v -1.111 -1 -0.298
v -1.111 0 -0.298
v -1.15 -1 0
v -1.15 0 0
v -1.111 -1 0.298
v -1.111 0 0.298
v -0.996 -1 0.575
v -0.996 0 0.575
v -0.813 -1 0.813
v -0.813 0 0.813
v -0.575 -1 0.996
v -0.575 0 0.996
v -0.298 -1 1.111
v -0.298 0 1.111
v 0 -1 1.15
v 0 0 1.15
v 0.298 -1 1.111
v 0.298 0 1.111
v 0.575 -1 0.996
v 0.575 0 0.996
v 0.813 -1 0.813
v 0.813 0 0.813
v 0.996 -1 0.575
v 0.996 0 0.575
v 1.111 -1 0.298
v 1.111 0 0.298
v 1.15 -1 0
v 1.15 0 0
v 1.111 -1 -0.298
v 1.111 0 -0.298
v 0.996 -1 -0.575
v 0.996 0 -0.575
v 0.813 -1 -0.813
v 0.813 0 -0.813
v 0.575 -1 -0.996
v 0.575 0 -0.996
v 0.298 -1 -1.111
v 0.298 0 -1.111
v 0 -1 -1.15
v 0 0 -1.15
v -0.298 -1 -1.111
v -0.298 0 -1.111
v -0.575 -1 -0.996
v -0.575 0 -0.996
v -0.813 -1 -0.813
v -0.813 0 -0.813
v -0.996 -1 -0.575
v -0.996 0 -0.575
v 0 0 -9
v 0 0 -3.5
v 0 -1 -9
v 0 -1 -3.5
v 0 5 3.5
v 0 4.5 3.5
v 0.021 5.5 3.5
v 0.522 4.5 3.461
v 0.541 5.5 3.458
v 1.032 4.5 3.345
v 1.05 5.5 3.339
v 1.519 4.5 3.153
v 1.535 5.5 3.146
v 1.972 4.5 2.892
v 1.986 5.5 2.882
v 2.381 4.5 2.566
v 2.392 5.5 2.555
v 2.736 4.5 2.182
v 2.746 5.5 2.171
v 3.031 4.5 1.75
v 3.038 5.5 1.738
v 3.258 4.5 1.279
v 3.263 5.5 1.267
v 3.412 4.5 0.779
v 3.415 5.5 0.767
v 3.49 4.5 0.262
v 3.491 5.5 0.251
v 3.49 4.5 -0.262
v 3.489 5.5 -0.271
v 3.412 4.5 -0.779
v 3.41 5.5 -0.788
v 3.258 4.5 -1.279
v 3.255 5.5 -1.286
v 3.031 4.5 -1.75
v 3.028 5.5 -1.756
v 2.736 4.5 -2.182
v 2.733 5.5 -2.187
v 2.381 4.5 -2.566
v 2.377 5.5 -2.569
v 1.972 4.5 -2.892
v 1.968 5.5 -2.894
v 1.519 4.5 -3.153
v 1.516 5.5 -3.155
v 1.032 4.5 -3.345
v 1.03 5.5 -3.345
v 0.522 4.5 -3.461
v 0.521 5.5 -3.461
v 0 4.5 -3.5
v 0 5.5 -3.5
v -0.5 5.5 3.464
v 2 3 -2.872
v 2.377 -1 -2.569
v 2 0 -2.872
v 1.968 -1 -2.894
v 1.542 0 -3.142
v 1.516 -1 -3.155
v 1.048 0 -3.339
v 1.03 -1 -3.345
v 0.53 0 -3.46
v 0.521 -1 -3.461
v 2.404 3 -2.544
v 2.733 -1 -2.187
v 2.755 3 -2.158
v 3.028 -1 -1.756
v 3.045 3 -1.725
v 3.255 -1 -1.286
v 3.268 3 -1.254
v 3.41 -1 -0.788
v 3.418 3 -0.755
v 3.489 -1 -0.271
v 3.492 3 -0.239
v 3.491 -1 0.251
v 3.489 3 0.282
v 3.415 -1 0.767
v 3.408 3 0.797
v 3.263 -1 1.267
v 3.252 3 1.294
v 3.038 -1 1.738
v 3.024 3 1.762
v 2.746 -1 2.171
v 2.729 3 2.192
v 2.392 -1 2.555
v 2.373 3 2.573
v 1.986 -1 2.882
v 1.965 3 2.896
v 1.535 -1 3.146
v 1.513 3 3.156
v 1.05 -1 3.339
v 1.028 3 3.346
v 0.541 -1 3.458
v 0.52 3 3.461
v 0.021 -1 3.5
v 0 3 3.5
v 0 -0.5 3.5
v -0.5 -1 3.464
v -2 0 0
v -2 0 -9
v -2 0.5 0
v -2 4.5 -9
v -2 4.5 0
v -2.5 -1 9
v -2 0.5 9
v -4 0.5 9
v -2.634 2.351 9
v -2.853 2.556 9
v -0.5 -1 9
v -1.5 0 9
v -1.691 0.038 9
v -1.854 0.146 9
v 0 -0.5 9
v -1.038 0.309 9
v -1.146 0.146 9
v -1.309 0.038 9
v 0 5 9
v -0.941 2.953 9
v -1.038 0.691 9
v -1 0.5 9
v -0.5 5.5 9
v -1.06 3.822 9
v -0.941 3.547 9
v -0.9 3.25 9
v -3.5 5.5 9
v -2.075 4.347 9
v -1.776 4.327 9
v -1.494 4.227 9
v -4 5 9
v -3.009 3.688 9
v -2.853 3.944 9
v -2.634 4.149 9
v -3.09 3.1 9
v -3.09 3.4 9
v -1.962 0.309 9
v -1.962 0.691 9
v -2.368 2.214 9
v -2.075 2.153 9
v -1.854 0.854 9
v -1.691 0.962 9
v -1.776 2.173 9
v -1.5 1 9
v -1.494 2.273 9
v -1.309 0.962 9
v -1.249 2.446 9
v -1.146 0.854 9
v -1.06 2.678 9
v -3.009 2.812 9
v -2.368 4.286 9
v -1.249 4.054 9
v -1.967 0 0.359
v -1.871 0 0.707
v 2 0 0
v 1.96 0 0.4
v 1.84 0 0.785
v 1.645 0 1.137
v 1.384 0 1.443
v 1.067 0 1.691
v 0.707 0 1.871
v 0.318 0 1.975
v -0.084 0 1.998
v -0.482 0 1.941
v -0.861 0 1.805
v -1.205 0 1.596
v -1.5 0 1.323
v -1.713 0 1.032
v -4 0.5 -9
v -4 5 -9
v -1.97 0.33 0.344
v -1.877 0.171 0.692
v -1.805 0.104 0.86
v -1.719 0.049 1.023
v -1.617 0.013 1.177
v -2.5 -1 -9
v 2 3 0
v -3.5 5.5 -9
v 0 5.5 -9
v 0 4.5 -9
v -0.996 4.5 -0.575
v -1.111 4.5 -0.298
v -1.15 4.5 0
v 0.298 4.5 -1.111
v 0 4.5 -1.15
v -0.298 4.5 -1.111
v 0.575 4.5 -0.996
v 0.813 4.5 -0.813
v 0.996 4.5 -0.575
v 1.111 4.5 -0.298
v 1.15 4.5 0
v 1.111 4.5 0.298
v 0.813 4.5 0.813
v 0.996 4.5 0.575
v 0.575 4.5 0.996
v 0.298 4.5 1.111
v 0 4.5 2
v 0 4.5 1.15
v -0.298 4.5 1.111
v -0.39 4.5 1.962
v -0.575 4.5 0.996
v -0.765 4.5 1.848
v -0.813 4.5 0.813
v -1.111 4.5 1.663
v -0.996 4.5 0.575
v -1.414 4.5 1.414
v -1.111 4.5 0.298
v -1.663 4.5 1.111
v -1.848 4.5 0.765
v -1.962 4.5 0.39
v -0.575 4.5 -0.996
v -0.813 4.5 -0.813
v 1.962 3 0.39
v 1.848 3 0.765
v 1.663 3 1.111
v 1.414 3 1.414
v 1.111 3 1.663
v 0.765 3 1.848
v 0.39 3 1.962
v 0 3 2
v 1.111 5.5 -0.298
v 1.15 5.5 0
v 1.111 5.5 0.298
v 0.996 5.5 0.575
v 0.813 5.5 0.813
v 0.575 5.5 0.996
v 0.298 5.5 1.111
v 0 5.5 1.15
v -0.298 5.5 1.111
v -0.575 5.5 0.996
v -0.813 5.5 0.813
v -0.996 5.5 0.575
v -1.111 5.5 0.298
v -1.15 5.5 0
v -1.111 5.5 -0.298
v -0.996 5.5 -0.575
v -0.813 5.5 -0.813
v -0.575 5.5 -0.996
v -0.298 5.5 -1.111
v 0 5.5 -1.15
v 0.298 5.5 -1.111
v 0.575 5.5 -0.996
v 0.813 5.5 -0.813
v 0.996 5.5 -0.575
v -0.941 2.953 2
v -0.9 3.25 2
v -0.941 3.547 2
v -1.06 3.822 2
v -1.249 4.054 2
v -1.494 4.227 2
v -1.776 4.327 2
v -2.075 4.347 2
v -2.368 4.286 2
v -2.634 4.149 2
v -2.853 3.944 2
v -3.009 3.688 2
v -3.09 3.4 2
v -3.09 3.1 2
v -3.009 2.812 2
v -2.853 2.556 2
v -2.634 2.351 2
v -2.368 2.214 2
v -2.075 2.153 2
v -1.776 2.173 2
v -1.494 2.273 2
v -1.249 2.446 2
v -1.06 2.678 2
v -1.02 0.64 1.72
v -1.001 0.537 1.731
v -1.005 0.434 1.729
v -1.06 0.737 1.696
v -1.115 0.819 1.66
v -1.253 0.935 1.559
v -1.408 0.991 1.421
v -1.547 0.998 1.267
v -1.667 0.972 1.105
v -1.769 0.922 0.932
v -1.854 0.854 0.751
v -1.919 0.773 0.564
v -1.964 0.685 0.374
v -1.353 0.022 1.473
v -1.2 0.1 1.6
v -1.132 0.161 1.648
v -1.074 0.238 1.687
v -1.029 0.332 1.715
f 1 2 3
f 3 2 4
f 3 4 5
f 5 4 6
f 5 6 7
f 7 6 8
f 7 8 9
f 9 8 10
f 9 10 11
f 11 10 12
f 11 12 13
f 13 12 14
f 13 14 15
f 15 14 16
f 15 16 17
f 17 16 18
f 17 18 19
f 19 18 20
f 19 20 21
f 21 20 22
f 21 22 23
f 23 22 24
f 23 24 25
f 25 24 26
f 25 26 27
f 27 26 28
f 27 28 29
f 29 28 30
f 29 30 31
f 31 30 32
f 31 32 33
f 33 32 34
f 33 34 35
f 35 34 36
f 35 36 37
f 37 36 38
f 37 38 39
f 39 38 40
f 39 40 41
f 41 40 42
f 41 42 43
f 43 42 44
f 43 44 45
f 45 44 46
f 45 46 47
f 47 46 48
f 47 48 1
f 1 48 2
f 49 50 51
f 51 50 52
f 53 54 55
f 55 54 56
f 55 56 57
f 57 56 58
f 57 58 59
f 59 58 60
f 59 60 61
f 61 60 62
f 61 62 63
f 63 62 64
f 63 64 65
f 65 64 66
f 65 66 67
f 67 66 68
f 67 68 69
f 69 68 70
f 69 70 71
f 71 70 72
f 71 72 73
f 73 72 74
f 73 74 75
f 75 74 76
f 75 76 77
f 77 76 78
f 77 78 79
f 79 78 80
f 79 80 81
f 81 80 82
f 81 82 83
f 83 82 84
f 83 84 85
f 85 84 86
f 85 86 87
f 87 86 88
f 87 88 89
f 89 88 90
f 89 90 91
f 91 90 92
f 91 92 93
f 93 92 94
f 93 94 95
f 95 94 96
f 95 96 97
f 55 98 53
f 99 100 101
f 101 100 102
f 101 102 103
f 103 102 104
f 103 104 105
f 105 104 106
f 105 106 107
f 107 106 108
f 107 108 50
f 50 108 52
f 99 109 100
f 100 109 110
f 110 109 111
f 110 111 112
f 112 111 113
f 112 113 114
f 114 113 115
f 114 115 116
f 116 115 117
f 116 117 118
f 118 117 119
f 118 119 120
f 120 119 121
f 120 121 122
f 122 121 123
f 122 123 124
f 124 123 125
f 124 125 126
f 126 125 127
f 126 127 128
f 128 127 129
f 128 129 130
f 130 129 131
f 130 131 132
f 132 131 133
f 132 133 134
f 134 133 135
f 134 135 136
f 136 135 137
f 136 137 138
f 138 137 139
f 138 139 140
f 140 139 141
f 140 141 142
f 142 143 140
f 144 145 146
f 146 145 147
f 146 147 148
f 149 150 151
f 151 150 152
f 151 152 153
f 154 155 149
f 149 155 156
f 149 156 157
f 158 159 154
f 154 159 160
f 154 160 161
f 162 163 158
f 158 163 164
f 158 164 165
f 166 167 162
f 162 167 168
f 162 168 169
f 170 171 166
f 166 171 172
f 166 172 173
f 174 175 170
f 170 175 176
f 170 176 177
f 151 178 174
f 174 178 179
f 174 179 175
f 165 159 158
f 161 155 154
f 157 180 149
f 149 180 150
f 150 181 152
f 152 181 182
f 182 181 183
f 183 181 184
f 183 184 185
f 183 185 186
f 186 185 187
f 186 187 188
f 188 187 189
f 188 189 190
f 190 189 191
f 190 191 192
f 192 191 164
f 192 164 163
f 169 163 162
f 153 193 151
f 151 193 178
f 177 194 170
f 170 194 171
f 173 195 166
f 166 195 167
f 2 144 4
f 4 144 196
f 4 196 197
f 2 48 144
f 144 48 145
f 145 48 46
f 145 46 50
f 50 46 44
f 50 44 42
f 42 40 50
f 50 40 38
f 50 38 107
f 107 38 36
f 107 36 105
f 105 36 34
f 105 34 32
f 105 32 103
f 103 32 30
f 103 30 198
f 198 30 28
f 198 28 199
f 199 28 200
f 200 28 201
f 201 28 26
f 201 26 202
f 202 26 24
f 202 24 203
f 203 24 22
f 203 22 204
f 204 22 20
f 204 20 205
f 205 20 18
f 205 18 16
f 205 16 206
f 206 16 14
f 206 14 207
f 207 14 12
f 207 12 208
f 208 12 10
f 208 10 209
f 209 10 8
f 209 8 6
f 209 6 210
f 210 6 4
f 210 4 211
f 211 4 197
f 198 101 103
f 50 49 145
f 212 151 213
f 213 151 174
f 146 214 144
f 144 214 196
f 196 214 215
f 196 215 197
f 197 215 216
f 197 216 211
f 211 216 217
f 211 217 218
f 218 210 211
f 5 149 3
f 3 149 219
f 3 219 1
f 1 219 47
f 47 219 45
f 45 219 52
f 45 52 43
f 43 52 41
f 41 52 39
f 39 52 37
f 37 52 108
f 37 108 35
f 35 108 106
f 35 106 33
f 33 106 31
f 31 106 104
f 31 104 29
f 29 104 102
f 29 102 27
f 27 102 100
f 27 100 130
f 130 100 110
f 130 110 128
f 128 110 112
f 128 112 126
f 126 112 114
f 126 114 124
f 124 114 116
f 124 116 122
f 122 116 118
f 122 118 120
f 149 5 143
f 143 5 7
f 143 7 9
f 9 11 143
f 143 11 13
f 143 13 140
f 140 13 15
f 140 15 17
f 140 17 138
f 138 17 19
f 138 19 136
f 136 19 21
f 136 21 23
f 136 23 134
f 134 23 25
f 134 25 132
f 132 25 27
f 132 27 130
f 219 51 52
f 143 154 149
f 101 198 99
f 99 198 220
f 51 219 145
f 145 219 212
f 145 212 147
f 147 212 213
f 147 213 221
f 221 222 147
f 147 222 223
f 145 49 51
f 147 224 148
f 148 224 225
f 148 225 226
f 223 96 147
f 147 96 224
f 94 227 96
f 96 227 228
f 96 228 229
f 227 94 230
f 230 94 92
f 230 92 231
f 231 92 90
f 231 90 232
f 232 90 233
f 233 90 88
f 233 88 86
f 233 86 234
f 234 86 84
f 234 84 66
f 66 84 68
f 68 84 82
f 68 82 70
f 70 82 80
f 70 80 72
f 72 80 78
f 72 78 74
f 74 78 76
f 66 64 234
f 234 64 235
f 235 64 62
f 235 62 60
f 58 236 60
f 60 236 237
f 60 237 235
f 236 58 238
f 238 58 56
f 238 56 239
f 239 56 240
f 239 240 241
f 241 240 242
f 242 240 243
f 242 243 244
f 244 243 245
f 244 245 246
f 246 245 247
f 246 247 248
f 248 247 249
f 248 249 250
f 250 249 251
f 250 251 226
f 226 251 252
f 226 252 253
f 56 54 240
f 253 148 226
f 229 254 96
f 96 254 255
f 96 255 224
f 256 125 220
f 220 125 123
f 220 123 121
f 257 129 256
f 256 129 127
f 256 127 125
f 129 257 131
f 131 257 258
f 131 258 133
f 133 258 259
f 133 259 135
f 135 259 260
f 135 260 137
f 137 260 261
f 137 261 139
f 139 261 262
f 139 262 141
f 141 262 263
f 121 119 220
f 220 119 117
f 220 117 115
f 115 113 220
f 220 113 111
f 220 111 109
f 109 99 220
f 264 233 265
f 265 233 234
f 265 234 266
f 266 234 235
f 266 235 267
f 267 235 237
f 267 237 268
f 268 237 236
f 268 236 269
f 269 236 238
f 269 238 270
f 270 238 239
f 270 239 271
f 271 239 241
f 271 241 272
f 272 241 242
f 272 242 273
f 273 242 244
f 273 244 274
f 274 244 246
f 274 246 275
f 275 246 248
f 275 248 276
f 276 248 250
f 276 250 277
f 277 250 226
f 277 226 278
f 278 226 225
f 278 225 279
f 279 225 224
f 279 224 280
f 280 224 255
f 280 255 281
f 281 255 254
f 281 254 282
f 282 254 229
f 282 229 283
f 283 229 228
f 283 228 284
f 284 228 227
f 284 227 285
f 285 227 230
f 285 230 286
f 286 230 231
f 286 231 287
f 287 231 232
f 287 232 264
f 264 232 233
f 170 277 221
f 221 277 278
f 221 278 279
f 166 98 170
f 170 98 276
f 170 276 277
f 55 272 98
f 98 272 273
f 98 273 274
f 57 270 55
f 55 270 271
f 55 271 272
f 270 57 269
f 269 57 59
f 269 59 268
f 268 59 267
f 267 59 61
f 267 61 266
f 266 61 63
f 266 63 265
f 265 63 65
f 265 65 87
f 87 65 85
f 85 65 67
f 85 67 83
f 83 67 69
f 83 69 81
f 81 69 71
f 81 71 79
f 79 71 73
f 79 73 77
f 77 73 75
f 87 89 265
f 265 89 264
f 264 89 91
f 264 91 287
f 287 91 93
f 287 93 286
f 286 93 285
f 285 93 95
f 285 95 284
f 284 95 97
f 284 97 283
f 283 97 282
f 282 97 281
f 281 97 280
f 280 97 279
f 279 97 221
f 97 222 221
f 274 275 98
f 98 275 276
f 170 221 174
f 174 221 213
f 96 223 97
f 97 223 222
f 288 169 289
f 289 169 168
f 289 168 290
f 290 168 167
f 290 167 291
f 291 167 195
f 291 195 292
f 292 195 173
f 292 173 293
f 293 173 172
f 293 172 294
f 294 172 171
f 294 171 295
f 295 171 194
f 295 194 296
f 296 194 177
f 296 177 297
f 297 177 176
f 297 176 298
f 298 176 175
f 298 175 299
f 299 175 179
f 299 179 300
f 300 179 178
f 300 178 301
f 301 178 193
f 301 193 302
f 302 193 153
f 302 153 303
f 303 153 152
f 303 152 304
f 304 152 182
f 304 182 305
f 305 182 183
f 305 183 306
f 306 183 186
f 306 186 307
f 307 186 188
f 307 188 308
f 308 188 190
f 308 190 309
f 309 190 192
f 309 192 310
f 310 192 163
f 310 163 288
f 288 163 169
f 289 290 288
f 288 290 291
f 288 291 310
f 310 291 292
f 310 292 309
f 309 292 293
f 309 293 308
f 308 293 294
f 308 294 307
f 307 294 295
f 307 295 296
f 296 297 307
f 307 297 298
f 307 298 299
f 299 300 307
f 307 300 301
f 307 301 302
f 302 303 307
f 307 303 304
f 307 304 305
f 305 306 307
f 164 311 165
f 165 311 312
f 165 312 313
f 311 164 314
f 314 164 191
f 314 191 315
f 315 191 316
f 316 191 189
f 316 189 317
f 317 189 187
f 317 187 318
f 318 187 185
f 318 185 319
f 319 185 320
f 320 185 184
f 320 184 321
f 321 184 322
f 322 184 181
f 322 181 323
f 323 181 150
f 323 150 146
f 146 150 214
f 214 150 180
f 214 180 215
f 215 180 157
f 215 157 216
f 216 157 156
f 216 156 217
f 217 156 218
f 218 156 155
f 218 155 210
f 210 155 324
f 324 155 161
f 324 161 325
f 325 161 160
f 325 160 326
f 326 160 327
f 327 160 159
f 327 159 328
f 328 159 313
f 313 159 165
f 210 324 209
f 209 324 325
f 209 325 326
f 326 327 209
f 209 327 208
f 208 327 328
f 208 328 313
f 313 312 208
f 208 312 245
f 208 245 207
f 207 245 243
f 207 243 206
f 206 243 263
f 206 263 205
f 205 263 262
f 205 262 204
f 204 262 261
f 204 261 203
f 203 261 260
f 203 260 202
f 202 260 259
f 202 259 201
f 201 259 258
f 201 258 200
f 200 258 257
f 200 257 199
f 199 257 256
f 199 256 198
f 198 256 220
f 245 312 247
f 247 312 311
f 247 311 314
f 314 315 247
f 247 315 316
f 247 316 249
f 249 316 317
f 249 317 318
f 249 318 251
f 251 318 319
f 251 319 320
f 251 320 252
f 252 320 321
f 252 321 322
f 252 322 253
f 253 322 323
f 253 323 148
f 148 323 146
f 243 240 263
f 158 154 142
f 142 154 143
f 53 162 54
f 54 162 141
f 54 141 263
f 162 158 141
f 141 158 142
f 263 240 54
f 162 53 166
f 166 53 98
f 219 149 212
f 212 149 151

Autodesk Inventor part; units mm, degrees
ref_plane "YZ Plane" through (0, 0, 0) normal (1, 0, 0) x (0, 1, 0)
ref_plane "XZ Plane" through (0, 0, 0) normal (0, 1, 0) x (-1, 0, 0)
ref_plane "XY Plane" through (0, 0, 0) normal (0, 0, 1) x (1, 0, 0)
sketch "スケッチ1" plane through (0, 0, 0) normal (0, 1, 0) x (-1, 0, 0)
  circle A0 centre (0, 0) radius 1.15
  circle A1 centre (0, 0) radius 2
  circle A2 centre (0, 0) radius 3.5
  line L0 (0, 0) -> (0, 3.5)
  line L1 (2, 0) -> (-2, 0)
  line L2 (2, 0) -> (2, -2.8723)
  line L3 (-2, 0) -> (-2, -2.8723)
  line L4 (0, 2) -> (3.5, 2)
  line L5 (3.5, 2) -> (3.5, 6)
  line L6 (3.5, 6) -> (0, 6)
  line L7 (0, 6) -> (0, 2)
  line L8 (0, 6) -> (3.5, 6)
  line L9 (3.5, 6) -> (3.5, 0)
  line L10 (3.5, 0) -> (0, 0)
  line L11 (0, 0) -> (0, 6)
  line L12 (0, 0) -> (0, -8)
  line L13 (0, 0) -> (3.5, 0)
  line L14 (3.5, 0) -> (3.5, -8)
  line L15 (3.5, -8) -> (0, -8)
  line L16 (0, -8) -> (0, 0)
  line L17 (2, -2.8723) -> (2, -8)
  line L18 (0, -8) -> (3.5, -4.5)
  line L19 (0, -8) -> (4.9497, -8) construction
  line L20 (0, 0) -> (3.5, 0)
  line L21 (3.5, 0) -> (3.5, -9)
  line L22 (3.5, -9) -> (0, -9)
  line L23 (0, -9) -> (0, 0)
  line L24 (0, 2) -> (4, 2)
  line L25 (4, 2) -> (4, 9)
  line L26 (4, 9) -> (0, 9)
  line L27 (0, 9) -> (0, 2)
  line L28 (0, 9) -> (4, 9)
  line L29 (4, 9) -> (4, -9)
  line L30 (4, -9) -> (0, -9)
  line L31 (0, -9) -> (0, 9)
  line L32 (0, 0) -> (2, 0)
  line L33 (2, 0) -> (2, -9)
  line L34 (2, -9) -> (0, -9)
  line L35 (0, -9) -> (0, 0)
  point P0 (2, -6)
  point P1 (0, -3.5)
  dimension "d0" = 2.3
  dimension "d1" = 4
  dimension "d2" = 7
  dimension "d3" = 3.5
  dimension "d4" = 4
  dimension "d5" = 8
  dimension "d6" = 45
  dimension "d40" = 9
  dimension "d41" = 4
  dimension "d42" = 7
extrude "押し出し1" add sketch "スケッチ1" along normal blind 3 contours A1 L3 A2 L0
extrude "押し出し2" add sketch "スケッチ1" along normal blind 4.5 contours L10 A2 L2 | A1 L4 A2 L10 | L0 A2 L4 | A2 L14 L18 L17 | A2 L4 L9 | L9 L24 L29 L30 L21 L14 | L7 L6 L5 L4 A2 | L18 L14 L15 L17 | L5 L6 L27 L26 L25 L24 | L15 L21 L22 L33
extrude "押し出し3" add sketch "スケッチ1" against normal blind 1 contours L1 A1 L12 A0 | A0 L0 A1 L1 | A0 L1 A1 L0 | L12 A1 L1 A0 | L2 A2 L12 A1 | L10 A2 L2 | A1 L4 A2 L10 | A1 L3 A2 L0 | L0 A2 L4 | L12 A2 L3 A1 | L17 L18 L12 A2 | A2 L14 L18 L17 | A2 L4 L9 | L9 L24 L29 L30 L21 L14 | L7 L6 L5 L4 A2 | L18 L14 L15 L17 | L17 L15 L18 | L5 L6 L27 L26 L25 L24 | L15 L33 L22 L23 | L15 L21 L22 L33
sketch "スケッチ4" plane through (0, 4.5, 0) normal (0, 1, 0) x (1, 0, 0)
  circle A0 centre (0, 0) radius 1.15
  circle A1 centre (0, 0) radius 2
  circle A2 centre (0, 0) radius 3.5
  line L0 (-4, 9) -> (-4, -9) projected
  line L1 (0, 0) -> (-4, 0)
  line L2 (-4, 0) -> (-4, -9)
  line L3 (-4, -9) -> (0, -9)
  line L4 (0, -9) -> (0, 0)
  line L5 (0, 0) -> (-4, 0)
  line L6 (-4, 0) -> (-4, 9)
  line L7 (-4, 9) -> (0, 9)
  line L8 (0, 9) -> (0, 0)
  point P0 (0, -3.5)
  point P1 (0, 3.5)
  dimension "d43" = 2.3
  dimension "d44" = 4
  dimension "d45" = 7
  dimension "d46" = 4
  dimension "d47" = 9
extrude "押し出し6" add sketch "スケッチ4" along normal blind 1 contours A0 L8 A1 L4 | A0 L1 A1 L8 | L4 A1 L1 A0 | L8 A2 L4 A1 | A1 L1 A2 L8 | L4 A2 L1 A1 | A2 L1 L0 L7 L8 | L4 L3 L0 L1 A2
sketch "スケッチ5" plane through (-4, -1, 9) normal (0, 0, 1) x (1, 0, 0)
  line L0 (4, 0) -> (4, 4) projected
  line L1 (4, 0) -> (0, 0)
  line L2 (0, 0) -> (0, 1)
  line L3 (0, 1) -> (4, 1)
  line L4 (4, 1) -> (4, 0)
  line L5 (4, 1) -> (2.5, 1)
  line L6 (2.5, 1) -> (2.5, 1.5)
  line L7 (2.5, 1.5) -> (4, 1.5)
  line L8 (4, 1.5) -> (4, 1)
  line L9 (4, 6.5) -> (0, 6.5) projected
  line L10 (0, 6.5) -> (2, 6.5)
  line L11 (2, 6.5) -> (2, 4.25)
  line L12 (2, 4.25) -> (0, 4.25)
  line L13 (0, 4.25) -> (0, 6.5)
  circle A0 centre (2, 4.25) radius 1.1
  dimension "d50" = 4
  dimension "d51" = 1
  dimension "d52" = 1.5
  dimension "d53" = 0.5
  dimension "d54" = 2
  dimension "d55" = 2.25
  dimension "d56" = 2.2
extrude "押し出し7" cut sketch "スケッチ5" against normal blind 7 contours A0 L12 L11 | L11 L12 A0
hole "穴2" at (-1.5, 0.5, 9) direction (0, 0, -1) diameter 1 end through all
chamfer "面取り1" distance 0.5 angle 45 3 edges at (0, -1, 6.25) (0, 5.5, 6.25) (-4, 5.5, 0)
chamfer "面取り2" distance 1.5 angle 45 1 edges at (-4, -1, 0)
properties part number "rod6.1"
